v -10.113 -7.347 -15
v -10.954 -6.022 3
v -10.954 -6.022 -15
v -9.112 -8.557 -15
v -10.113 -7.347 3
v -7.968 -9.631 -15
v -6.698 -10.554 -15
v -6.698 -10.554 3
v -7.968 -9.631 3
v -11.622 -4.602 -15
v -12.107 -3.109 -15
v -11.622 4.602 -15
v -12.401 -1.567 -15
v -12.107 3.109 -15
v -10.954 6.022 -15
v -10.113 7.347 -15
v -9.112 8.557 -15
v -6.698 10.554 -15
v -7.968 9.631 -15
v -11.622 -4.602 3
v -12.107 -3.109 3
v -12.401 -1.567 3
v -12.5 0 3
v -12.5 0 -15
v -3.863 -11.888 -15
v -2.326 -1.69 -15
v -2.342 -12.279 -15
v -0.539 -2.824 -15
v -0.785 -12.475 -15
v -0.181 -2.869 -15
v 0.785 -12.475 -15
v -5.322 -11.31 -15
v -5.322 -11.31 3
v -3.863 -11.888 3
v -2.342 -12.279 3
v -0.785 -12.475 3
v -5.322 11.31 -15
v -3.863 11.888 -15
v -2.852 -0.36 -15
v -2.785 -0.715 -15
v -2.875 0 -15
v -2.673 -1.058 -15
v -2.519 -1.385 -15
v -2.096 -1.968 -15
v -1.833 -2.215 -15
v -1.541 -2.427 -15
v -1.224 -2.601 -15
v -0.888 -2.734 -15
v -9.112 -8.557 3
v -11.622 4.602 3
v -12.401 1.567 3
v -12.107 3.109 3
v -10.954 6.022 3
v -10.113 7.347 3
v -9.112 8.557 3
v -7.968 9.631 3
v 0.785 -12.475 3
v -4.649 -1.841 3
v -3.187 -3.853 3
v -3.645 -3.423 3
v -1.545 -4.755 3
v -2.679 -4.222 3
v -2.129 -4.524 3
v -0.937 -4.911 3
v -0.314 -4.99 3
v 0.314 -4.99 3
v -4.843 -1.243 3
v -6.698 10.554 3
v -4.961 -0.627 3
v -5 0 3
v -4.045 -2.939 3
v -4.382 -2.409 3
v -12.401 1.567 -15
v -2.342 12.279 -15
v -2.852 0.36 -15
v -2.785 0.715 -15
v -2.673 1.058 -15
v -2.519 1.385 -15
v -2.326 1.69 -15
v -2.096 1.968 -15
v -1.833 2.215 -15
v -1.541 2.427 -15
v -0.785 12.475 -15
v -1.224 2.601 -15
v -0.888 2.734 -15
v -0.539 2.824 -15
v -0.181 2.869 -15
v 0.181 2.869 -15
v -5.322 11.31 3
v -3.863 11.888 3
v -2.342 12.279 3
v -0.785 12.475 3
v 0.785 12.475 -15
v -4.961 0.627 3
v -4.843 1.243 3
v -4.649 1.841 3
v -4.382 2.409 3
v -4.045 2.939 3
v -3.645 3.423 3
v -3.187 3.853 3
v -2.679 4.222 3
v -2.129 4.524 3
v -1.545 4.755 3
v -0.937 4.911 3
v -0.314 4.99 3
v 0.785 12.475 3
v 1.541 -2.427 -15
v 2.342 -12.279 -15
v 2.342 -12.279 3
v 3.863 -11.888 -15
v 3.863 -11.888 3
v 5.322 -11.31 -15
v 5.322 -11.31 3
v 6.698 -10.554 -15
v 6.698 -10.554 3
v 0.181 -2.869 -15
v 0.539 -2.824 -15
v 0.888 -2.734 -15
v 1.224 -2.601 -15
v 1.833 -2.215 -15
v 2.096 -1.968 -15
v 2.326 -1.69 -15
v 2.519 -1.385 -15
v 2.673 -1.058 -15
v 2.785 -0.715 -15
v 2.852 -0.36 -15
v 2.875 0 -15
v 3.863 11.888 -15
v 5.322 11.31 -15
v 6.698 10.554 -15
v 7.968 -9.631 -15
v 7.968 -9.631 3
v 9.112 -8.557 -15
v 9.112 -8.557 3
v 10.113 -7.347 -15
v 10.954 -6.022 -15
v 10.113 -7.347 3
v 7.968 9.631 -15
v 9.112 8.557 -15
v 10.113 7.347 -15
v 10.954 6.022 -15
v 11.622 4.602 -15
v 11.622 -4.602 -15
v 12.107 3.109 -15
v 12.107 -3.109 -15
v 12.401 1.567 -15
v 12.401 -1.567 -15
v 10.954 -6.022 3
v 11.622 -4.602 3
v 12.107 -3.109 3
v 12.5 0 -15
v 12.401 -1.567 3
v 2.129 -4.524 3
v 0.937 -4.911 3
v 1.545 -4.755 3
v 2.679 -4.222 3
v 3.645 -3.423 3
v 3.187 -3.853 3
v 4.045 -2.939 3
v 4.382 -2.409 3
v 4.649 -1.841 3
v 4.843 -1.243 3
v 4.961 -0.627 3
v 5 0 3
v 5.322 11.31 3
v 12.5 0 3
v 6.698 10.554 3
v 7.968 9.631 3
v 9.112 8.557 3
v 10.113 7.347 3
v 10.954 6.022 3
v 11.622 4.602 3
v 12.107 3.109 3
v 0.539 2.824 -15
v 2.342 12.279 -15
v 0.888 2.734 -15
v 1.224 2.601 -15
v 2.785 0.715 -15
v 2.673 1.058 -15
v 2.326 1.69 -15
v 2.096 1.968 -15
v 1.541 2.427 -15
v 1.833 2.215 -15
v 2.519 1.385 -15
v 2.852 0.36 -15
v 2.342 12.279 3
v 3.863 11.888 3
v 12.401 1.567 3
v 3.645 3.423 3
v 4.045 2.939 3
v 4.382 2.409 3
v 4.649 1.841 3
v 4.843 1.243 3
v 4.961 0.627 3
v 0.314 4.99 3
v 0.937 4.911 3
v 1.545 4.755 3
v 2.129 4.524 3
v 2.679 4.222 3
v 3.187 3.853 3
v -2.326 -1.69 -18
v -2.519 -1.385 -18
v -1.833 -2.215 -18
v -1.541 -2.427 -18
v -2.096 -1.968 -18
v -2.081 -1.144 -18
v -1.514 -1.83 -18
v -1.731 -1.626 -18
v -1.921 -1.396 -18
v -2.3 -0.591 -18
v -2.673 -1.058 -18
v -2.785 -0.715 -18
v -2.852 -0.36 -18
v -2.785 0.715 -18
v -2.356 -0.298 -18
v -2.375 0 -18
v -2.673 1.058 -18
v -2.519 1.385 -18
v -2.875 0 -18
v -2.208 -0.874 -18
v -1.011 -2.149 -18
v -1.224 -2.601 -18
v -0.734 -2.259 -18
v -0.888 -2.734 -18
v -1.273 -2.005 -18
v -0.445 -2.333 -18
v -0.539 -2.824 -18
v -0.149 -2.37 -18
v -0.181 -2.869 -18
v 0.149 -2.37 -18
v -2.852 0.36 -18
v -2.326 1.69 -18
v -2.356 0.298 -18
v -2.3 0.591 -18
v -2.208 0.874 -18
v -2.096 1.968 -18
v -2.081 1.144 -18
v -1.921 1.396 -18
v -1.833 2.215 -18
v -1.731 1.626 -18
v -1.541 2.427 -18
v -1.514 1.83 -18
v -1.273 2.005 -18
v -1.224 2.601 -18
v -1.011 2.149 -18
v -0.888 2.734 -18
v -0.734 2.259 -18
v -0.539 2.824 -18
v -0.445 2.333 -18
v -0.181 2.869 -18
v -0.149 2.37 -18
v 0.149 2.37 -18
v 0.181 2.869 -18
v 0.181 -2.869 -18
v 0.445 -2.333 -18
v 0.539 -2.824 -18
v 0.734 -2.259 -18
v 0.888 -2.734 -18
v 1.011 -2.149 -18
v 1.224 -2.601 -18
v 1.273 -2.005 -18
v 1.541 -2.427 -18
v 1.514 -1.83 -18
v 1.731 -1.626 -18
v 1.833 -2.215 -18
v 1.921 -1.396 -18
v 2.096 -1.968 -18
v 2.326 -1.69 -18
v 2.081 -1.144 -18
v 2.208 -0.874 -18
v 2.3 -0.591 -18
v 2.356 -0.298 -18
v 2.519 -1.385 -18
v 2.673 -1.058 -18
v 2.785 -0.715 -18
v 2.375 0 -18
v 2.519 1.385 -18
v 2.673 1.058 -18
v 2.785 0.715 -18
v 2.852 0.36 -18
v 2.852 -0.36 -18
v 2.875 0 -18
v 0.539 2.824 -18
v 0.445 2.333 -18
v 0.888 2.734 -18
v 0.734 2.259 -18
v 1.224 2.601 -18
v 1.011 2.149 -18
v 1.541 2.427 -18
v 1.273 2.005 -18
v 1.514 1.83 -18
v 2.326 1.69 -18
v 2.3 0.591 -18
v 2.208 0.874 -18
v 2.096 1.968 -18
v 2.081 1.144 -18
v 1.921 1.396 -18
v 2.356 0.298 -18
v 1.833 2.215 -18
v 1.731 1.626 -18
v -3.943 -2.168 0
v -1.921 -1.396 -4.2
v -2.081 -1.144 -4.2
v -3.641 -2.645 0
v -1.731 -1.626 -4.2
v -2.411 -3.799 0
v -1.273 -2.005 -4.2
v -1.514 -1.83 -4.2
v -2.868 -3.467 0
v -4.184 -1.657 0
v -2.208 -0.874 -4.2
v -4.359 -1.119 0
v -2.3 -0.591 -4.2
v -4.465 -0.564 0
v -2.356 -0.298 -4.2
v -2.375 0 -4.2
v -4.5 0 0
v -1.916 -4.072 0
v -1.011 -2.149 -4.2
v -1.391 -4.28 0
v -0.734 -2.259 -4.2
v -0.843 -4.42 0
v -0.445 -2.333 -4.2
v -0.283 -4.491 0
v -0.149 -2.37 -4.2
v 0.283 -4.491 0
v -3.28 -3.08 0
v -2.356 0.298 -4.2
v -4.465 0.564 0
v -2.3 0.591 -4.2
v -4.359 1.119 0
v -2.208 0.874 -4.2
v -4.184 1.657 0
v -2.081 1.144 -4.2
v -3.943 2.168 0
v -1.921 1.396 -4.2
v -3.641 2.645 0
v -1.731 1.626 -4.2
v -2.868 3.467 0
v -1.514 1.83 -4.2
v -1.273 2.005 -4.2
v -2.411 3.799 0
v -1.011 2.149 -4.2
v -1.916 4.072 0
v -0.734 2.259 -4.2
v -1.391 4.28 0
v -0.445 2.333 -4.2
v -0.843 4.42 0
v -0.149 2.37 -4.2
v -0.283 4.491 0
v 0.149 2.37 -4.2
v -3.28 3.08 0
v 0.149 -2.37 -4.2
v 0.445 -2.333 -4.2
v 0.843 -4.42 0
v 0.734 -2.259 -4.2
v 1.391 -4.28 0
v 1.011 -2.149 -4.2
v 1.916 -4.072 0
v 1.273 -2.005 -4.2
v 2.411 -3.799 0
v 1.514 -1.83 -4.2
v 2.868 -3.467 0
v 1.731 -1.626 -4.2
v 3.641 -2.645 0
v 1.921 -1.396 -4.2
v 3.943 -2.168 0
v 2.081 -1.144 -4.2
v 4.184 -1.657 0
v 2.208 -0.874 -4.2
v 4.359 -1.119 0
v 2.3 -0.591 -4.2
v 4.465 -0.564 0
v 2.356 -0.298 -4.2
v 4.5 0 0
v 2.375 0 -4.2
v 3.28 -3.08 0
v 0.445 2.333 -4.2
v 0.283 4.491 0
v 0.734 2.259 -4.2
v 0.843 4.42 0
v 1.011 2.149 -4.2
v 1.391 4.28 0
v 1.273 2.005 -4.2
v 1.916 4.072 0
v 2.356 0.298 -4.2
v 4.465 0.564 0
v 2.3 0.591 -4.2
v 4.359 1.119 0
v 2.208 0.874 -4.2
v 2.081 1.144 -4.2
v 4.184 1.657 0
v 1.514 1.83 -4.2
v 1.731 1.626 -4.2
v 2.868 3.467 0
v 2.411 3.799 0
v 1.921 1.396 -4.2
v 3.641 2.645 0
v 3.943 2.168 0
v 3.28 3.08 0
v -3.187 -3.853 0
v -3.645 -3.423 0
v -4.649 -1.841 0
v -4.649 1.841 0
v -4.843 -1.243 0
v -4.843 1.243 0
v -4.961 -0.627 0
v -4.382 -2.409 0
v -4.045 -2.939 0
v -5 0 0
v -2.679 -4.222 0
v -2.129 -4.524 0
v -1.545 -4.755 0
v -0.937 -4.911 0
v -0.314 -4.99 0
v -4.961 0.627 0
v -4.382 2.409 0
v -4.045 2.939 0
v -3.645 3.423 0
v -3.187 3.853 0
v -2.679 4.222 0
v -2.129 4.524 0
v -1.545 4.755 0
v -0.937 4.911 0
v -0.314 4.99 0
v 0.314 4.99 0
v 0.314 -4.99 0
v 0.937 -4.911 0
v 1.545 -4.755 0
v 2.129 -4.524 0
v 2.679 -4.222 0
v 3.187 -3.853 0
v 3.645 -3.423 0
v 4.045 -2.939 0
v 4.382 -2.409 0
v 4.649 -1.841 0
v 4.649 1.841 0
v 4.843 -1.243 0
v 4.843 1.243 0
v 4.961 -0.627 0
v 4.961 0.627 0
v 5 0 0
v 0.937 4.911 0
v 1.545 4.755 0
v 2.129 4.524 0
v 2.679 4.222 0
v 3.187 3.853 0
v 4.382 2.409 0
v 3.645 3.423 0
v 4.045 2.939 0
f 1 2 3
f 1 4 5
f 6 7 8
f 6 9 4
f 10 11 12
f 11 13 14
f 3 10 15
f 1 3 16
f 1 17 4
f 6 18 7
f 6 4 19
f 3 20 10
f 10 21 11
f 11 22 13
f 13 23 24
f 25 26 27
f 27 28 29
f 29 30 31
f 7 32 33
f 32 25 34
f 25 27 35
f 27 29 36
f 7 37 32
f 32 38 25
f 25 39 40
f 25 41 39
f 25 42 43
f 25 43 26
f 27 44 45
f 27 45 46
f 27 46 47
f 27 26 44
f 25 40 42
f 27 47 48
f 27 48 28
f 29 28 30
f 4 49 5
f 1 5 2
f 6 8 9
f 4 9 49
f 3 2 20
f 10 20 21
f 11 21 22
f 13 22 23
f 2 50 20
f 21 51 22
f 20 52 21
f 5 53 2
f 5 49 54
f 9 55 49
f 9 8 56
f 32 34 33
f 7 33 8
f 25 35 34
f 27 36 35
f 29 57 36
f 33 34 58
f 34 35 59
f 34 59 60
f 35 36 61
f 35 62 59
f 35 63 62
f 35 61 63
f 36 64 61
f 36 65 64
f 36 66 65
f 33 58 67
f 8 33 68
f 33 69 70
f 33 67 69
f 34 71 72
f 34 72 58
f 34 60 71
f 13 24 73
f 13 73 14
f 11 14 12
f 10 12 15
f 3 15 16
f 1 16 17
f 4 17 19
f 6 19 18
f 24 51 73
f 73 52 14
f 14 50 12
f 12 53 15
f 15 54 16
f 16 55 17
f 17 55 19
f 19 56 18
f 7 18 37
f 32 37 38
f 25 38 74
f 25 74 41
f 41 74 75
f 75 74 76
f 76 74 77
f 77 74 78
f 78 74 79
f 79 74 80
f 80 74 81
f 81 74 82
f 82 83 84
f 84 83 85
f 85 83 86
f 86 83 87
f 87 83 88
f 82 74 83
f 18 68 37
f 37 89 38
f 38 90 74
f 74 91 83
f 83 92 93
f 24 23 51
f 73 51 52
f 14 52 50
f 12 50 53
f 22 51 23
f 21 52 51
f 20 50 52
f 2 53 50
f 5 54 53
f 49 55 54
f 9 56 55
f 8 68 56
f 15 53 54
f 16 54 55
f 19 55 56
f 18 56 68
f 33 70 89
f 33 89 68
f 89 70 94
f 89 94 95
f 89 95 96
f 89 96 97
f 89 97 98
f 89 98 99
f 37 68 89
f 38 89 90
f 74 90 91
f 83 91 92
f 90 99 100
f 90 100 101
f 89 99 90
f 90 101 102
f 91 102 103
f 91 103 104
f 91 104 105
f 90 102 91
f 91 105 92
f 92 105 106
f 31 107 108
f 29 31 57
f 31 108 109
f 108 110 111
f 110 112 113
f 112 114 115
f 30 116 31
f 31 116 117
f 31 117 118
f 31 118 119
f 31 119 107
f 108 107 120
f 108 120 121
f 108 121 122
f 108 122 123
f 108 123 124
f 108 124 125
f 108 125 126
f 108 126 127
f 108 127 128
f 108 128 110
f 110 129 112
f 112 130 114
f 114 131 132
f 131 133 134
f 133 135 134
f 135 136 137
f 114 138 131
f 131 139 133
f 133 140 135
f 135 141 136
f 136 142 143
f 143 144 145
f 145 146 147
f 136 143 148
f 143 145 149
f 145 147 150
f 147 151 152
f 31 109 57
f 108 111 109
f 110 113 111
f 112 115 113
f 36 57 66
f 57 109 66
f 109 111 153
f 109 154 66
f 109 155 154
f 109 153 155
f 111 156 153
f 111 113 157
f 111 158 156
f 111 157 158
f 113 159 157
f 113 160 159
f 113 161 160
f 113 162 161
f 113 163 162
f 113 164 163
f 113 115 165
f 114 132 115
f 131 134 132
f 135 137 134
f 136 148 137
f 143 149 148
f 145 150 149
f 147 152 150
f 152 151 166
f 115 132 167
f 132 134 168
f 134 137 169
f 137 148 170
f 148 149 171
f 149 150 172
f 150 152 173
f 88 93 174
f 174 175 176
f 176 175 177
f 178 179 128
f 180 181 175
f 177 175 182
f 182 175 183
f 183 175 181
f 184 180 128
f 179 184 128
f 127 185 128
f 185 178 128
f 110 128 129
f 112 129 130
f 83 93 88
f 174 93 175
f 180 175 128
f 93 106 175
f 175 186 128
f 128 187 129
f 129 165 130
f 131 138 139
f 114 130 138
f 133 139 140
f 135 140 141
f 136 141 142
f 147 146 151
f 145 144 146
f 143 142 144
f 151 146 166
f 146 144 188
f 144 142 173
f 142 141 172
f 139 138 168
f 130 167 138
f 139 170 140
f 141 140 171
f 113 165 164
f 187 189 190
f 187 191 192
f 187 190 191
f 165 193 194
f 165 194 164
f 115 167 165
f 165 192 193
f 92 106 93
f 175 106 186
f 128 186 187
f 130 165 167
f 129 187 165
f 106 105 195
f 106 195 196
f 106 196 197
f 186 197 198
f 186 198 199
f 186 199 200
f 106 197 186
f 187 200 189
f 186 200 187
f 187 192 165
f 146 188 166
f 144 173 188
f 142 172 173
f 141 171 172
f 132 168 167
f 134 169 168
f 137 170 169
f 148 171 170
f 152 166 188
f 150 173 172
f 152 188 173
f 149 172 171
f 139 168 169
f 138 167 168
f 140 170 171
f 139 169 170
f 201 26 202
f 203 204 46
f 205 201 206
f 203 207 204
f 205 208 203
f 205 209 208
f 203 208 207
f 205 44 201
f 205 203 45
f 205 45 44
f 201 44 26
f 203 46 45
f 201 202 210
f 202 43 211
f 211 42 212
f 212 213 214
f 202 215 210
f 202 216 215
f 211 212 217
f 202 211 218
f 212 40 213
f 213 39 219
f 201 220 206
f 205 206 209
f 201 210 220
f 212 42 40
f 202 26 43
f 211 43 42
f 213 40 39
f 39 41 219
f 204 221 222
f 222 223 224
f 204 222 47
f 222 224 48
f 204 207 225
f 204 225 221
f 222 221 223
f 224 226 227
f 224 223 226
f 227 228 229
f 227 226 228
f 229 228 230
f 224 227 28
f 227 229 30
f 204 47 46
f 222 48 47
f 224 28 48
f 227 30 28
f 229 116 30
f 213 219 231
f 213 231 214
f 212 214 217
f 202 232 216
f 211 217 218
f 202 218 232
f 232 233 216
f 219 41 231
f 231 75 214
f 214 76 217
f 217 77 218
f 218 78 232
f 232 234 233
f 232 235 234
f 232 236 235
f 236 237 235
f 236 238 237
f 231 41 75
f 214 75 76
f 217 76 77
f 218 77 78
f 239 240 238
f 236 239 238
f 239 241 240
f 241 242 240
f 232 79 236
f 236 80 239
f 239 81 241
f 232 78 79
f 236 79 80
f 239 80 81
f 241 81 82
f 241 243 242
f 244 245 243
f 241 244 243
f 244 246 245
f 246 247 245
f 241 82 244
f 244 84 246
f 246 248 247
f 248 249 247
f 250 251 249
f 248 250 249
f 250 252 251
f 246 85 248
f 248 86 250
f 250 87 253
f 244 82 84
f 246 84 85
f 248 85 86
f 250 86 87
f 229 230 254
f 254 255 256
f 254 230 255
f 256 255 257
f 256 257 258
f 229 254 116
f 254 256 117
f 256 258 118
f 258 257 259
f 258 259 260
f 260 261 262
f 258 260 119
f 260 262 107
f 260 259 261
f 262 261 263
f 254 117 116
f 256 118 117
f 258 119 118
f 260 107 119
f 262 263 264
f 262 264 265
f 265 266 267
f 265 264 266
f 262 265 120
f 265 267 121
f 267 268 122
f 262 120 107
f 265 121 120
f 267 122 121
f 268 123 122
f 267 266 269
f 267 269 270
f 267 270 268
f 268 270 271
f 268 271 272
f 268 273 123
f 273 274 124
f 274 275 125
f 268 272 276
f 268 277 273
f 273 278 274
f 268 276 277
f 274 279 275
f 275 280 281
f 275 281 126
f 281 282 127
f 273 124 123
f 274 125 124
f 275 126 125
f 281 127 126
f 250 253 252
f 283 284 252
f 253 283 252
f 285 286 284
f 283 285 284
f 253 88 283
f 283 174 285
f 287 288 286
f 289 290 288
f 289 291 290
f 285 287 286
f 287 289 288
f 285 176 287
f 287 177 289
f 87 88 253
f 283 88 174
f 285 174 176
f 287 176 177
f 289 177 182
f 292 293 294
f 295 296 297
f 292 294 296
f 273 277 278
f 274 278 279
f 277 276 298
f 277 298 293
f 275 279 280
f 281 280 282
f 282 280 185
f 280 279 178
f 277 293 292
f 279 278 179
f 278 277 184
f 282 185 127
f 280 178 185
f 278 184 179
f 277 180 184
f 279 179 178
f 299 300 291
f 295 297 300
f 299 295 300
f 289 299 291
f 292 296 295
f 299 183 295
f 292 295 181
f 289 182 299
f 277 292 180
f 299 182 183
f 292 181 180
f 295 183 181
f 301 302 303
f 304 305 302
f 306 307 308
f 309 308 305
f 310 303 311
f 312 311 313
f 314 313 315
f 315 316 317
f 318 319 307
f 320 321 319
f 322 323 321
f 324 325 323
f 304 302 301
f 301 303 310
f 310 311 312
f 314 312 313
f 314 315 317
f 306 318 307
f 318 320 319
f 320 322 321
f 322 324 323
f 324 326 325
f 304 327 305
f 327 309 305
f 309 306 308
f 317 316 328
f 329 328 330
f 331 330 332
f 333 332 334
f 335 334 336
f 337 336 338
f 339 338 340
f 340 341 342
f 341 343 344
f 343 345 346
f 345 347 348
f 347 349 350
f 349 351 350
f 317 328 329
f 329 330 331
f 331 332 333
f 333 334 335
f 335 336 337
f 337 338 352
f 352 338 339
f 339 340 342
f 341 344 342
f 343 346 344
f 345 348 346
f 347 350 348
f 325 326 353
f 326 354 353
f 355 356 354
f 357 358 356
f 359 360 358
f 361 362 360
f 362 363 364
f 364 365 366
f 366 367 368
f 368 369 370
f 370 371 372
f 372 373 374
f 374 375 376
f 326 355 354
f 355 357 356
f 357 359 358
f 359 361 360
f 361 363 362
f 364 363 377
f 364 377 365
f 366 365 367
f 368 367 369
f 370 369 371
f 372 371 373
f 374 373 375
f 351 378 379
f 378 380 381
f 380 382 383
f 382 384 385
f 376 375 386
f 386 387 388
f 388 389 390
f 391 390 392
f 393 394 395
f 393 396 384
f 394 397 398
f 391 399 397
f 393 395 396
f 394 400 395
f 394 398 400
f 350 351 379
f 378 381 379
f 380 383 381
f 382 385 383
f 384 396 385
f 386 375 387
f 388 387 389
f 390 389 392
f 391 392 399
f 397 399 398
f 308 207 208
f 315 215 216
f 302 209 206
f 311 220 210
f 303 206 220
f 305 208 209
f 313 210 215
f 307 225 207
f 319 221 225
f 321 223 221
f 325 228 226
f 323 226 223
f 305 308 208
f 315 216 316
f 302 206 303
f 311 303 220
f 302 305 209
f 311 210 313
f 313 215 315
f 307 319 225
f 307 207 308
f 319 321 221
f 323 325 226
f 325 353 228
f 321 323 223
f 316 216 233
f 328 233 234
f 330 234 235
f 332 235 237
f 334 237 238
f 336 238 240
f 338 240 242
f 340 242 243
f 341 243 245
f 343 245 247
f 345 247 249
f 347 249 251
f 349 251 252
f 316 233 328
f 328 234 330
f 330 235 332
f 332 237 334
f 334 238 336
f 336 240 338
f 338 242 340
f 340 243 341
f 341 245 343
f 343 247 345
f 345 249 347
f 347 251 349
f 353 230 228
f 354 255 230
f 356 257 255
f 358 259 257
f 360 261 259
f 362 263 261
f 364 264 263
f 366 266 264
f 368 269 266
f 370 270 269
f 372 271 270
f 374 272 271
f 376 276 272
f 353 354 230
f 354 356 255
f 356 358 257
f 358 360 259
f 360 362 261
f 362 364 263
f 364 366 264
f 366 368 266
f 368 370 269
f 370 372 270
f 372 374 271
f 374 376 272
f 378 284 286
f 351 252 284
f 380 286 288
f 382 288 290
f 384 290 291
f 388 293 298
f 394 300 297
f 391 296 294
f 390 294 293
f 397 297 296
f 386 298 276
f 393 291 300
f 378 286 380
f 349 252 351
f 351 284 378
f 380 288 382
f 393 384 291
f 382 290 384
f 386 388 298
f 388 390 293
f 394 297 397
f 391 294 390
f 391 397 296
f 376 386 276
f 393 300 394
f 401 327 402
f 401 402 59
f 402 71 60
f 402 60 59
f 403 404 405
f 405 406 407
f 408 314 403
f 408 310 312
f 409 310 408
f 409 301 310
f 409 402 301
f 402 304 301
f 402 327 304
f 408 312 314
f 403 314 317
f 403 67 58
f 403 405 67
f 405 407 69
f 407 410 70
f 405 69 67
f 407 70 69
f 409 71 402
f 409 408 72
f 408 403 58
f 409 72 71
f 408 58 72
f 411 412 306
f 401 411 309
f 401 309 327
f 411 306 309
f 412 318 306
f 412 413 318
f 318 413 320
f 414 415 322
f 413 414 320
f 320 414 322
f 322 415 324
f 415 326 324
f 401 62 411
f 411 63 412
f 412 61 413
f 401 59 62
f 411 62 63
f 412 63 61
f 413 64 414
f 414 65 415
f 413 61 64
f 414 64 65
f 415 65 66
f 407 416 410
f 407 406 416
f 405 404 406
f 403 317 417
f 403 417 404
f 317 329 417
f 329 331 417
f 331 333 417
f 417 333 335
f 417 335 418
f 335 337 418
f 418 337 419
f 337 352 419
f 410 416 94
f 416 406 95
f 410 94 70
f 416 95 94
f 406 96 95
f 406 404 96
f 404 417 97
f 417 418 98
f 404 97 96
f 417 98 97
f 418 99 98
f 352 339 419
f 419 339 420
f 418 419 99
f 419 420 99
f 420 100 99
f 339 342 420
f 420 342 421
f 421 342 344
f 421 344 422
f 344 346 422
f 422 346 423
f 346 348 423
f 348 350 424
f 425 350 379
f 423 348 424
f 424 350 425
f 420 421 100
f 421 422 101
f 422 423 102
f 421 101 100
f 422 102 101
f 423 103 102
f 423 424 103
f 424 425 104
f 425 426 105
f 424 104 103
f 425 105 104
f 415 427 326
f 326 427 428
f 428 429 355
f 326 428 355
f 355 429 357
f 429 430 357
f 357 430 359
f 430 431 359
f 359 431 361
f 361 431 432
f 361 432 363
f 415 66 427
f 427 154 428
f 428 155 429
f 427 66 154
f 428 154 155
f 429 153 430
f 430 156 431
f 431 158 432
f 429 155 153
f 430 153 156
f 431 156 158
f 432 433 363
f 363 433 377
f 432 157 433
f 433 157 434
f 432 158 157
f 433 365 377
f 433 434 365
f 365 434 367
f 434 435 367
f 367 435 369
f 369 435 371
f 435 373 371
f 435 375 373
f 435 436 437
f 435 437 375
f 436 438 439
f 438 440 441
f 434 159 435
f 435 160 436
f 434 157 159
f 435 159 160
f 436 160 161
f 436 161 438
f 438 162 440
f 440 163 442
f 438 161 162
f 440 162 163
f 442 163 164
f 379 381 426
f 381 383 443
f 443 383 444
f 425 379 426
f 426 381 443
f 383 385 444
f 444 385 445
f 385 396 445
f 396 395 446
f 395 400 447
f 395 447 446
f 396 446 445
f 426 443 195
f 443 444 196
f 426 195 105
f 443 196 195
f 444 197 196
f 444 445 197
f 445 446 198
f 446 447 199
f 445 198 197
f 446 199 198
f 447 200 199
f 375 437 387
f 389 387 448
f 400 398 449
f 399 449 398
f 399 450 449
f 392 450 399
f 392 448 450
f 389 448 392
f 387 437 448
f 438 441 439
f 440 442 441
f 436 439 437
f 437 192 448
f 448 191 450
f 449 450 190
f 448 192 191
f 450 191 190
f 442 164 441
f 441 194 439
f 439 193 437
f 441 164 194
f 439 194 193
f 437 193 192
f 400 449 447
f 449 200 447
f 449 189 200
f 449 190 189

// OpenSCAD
$fn = 50;

difference() {
	union() {
		translate(v = [0, 0, -15.0]) {
			cylinder(h = 18, r = 12.5);
		}
		#translate(v = [0, 0, -18.0]) {
			cylinder(h = 18, r = 2.875);
		}
	}
	union() {
		translate(v = [0, 0, 0]) {
			rotate(a = [0, 0, 0]) {
				difference() {
					union() {
						translate(v = [0, 0, -18.0]) {
							cylinder(h = 18, r = 2.25);
						}
						translate(v = [0, 0, -4.2]) {
							cylinder(h = 4.2, r1 = 2.375, r2 = 4.5);
						}
						translate(v = [0, 0, -18.0]) {
							cylinder(h = 18, r = 2.375);
						}
						translate(v = [0, 0, -18.0]) {
							cylinder(h = 18, r = 2.25);
						}
					}
					union();
				}
			}
		}
		#cylinder(h = 3, r = 5.0);
	}
}
